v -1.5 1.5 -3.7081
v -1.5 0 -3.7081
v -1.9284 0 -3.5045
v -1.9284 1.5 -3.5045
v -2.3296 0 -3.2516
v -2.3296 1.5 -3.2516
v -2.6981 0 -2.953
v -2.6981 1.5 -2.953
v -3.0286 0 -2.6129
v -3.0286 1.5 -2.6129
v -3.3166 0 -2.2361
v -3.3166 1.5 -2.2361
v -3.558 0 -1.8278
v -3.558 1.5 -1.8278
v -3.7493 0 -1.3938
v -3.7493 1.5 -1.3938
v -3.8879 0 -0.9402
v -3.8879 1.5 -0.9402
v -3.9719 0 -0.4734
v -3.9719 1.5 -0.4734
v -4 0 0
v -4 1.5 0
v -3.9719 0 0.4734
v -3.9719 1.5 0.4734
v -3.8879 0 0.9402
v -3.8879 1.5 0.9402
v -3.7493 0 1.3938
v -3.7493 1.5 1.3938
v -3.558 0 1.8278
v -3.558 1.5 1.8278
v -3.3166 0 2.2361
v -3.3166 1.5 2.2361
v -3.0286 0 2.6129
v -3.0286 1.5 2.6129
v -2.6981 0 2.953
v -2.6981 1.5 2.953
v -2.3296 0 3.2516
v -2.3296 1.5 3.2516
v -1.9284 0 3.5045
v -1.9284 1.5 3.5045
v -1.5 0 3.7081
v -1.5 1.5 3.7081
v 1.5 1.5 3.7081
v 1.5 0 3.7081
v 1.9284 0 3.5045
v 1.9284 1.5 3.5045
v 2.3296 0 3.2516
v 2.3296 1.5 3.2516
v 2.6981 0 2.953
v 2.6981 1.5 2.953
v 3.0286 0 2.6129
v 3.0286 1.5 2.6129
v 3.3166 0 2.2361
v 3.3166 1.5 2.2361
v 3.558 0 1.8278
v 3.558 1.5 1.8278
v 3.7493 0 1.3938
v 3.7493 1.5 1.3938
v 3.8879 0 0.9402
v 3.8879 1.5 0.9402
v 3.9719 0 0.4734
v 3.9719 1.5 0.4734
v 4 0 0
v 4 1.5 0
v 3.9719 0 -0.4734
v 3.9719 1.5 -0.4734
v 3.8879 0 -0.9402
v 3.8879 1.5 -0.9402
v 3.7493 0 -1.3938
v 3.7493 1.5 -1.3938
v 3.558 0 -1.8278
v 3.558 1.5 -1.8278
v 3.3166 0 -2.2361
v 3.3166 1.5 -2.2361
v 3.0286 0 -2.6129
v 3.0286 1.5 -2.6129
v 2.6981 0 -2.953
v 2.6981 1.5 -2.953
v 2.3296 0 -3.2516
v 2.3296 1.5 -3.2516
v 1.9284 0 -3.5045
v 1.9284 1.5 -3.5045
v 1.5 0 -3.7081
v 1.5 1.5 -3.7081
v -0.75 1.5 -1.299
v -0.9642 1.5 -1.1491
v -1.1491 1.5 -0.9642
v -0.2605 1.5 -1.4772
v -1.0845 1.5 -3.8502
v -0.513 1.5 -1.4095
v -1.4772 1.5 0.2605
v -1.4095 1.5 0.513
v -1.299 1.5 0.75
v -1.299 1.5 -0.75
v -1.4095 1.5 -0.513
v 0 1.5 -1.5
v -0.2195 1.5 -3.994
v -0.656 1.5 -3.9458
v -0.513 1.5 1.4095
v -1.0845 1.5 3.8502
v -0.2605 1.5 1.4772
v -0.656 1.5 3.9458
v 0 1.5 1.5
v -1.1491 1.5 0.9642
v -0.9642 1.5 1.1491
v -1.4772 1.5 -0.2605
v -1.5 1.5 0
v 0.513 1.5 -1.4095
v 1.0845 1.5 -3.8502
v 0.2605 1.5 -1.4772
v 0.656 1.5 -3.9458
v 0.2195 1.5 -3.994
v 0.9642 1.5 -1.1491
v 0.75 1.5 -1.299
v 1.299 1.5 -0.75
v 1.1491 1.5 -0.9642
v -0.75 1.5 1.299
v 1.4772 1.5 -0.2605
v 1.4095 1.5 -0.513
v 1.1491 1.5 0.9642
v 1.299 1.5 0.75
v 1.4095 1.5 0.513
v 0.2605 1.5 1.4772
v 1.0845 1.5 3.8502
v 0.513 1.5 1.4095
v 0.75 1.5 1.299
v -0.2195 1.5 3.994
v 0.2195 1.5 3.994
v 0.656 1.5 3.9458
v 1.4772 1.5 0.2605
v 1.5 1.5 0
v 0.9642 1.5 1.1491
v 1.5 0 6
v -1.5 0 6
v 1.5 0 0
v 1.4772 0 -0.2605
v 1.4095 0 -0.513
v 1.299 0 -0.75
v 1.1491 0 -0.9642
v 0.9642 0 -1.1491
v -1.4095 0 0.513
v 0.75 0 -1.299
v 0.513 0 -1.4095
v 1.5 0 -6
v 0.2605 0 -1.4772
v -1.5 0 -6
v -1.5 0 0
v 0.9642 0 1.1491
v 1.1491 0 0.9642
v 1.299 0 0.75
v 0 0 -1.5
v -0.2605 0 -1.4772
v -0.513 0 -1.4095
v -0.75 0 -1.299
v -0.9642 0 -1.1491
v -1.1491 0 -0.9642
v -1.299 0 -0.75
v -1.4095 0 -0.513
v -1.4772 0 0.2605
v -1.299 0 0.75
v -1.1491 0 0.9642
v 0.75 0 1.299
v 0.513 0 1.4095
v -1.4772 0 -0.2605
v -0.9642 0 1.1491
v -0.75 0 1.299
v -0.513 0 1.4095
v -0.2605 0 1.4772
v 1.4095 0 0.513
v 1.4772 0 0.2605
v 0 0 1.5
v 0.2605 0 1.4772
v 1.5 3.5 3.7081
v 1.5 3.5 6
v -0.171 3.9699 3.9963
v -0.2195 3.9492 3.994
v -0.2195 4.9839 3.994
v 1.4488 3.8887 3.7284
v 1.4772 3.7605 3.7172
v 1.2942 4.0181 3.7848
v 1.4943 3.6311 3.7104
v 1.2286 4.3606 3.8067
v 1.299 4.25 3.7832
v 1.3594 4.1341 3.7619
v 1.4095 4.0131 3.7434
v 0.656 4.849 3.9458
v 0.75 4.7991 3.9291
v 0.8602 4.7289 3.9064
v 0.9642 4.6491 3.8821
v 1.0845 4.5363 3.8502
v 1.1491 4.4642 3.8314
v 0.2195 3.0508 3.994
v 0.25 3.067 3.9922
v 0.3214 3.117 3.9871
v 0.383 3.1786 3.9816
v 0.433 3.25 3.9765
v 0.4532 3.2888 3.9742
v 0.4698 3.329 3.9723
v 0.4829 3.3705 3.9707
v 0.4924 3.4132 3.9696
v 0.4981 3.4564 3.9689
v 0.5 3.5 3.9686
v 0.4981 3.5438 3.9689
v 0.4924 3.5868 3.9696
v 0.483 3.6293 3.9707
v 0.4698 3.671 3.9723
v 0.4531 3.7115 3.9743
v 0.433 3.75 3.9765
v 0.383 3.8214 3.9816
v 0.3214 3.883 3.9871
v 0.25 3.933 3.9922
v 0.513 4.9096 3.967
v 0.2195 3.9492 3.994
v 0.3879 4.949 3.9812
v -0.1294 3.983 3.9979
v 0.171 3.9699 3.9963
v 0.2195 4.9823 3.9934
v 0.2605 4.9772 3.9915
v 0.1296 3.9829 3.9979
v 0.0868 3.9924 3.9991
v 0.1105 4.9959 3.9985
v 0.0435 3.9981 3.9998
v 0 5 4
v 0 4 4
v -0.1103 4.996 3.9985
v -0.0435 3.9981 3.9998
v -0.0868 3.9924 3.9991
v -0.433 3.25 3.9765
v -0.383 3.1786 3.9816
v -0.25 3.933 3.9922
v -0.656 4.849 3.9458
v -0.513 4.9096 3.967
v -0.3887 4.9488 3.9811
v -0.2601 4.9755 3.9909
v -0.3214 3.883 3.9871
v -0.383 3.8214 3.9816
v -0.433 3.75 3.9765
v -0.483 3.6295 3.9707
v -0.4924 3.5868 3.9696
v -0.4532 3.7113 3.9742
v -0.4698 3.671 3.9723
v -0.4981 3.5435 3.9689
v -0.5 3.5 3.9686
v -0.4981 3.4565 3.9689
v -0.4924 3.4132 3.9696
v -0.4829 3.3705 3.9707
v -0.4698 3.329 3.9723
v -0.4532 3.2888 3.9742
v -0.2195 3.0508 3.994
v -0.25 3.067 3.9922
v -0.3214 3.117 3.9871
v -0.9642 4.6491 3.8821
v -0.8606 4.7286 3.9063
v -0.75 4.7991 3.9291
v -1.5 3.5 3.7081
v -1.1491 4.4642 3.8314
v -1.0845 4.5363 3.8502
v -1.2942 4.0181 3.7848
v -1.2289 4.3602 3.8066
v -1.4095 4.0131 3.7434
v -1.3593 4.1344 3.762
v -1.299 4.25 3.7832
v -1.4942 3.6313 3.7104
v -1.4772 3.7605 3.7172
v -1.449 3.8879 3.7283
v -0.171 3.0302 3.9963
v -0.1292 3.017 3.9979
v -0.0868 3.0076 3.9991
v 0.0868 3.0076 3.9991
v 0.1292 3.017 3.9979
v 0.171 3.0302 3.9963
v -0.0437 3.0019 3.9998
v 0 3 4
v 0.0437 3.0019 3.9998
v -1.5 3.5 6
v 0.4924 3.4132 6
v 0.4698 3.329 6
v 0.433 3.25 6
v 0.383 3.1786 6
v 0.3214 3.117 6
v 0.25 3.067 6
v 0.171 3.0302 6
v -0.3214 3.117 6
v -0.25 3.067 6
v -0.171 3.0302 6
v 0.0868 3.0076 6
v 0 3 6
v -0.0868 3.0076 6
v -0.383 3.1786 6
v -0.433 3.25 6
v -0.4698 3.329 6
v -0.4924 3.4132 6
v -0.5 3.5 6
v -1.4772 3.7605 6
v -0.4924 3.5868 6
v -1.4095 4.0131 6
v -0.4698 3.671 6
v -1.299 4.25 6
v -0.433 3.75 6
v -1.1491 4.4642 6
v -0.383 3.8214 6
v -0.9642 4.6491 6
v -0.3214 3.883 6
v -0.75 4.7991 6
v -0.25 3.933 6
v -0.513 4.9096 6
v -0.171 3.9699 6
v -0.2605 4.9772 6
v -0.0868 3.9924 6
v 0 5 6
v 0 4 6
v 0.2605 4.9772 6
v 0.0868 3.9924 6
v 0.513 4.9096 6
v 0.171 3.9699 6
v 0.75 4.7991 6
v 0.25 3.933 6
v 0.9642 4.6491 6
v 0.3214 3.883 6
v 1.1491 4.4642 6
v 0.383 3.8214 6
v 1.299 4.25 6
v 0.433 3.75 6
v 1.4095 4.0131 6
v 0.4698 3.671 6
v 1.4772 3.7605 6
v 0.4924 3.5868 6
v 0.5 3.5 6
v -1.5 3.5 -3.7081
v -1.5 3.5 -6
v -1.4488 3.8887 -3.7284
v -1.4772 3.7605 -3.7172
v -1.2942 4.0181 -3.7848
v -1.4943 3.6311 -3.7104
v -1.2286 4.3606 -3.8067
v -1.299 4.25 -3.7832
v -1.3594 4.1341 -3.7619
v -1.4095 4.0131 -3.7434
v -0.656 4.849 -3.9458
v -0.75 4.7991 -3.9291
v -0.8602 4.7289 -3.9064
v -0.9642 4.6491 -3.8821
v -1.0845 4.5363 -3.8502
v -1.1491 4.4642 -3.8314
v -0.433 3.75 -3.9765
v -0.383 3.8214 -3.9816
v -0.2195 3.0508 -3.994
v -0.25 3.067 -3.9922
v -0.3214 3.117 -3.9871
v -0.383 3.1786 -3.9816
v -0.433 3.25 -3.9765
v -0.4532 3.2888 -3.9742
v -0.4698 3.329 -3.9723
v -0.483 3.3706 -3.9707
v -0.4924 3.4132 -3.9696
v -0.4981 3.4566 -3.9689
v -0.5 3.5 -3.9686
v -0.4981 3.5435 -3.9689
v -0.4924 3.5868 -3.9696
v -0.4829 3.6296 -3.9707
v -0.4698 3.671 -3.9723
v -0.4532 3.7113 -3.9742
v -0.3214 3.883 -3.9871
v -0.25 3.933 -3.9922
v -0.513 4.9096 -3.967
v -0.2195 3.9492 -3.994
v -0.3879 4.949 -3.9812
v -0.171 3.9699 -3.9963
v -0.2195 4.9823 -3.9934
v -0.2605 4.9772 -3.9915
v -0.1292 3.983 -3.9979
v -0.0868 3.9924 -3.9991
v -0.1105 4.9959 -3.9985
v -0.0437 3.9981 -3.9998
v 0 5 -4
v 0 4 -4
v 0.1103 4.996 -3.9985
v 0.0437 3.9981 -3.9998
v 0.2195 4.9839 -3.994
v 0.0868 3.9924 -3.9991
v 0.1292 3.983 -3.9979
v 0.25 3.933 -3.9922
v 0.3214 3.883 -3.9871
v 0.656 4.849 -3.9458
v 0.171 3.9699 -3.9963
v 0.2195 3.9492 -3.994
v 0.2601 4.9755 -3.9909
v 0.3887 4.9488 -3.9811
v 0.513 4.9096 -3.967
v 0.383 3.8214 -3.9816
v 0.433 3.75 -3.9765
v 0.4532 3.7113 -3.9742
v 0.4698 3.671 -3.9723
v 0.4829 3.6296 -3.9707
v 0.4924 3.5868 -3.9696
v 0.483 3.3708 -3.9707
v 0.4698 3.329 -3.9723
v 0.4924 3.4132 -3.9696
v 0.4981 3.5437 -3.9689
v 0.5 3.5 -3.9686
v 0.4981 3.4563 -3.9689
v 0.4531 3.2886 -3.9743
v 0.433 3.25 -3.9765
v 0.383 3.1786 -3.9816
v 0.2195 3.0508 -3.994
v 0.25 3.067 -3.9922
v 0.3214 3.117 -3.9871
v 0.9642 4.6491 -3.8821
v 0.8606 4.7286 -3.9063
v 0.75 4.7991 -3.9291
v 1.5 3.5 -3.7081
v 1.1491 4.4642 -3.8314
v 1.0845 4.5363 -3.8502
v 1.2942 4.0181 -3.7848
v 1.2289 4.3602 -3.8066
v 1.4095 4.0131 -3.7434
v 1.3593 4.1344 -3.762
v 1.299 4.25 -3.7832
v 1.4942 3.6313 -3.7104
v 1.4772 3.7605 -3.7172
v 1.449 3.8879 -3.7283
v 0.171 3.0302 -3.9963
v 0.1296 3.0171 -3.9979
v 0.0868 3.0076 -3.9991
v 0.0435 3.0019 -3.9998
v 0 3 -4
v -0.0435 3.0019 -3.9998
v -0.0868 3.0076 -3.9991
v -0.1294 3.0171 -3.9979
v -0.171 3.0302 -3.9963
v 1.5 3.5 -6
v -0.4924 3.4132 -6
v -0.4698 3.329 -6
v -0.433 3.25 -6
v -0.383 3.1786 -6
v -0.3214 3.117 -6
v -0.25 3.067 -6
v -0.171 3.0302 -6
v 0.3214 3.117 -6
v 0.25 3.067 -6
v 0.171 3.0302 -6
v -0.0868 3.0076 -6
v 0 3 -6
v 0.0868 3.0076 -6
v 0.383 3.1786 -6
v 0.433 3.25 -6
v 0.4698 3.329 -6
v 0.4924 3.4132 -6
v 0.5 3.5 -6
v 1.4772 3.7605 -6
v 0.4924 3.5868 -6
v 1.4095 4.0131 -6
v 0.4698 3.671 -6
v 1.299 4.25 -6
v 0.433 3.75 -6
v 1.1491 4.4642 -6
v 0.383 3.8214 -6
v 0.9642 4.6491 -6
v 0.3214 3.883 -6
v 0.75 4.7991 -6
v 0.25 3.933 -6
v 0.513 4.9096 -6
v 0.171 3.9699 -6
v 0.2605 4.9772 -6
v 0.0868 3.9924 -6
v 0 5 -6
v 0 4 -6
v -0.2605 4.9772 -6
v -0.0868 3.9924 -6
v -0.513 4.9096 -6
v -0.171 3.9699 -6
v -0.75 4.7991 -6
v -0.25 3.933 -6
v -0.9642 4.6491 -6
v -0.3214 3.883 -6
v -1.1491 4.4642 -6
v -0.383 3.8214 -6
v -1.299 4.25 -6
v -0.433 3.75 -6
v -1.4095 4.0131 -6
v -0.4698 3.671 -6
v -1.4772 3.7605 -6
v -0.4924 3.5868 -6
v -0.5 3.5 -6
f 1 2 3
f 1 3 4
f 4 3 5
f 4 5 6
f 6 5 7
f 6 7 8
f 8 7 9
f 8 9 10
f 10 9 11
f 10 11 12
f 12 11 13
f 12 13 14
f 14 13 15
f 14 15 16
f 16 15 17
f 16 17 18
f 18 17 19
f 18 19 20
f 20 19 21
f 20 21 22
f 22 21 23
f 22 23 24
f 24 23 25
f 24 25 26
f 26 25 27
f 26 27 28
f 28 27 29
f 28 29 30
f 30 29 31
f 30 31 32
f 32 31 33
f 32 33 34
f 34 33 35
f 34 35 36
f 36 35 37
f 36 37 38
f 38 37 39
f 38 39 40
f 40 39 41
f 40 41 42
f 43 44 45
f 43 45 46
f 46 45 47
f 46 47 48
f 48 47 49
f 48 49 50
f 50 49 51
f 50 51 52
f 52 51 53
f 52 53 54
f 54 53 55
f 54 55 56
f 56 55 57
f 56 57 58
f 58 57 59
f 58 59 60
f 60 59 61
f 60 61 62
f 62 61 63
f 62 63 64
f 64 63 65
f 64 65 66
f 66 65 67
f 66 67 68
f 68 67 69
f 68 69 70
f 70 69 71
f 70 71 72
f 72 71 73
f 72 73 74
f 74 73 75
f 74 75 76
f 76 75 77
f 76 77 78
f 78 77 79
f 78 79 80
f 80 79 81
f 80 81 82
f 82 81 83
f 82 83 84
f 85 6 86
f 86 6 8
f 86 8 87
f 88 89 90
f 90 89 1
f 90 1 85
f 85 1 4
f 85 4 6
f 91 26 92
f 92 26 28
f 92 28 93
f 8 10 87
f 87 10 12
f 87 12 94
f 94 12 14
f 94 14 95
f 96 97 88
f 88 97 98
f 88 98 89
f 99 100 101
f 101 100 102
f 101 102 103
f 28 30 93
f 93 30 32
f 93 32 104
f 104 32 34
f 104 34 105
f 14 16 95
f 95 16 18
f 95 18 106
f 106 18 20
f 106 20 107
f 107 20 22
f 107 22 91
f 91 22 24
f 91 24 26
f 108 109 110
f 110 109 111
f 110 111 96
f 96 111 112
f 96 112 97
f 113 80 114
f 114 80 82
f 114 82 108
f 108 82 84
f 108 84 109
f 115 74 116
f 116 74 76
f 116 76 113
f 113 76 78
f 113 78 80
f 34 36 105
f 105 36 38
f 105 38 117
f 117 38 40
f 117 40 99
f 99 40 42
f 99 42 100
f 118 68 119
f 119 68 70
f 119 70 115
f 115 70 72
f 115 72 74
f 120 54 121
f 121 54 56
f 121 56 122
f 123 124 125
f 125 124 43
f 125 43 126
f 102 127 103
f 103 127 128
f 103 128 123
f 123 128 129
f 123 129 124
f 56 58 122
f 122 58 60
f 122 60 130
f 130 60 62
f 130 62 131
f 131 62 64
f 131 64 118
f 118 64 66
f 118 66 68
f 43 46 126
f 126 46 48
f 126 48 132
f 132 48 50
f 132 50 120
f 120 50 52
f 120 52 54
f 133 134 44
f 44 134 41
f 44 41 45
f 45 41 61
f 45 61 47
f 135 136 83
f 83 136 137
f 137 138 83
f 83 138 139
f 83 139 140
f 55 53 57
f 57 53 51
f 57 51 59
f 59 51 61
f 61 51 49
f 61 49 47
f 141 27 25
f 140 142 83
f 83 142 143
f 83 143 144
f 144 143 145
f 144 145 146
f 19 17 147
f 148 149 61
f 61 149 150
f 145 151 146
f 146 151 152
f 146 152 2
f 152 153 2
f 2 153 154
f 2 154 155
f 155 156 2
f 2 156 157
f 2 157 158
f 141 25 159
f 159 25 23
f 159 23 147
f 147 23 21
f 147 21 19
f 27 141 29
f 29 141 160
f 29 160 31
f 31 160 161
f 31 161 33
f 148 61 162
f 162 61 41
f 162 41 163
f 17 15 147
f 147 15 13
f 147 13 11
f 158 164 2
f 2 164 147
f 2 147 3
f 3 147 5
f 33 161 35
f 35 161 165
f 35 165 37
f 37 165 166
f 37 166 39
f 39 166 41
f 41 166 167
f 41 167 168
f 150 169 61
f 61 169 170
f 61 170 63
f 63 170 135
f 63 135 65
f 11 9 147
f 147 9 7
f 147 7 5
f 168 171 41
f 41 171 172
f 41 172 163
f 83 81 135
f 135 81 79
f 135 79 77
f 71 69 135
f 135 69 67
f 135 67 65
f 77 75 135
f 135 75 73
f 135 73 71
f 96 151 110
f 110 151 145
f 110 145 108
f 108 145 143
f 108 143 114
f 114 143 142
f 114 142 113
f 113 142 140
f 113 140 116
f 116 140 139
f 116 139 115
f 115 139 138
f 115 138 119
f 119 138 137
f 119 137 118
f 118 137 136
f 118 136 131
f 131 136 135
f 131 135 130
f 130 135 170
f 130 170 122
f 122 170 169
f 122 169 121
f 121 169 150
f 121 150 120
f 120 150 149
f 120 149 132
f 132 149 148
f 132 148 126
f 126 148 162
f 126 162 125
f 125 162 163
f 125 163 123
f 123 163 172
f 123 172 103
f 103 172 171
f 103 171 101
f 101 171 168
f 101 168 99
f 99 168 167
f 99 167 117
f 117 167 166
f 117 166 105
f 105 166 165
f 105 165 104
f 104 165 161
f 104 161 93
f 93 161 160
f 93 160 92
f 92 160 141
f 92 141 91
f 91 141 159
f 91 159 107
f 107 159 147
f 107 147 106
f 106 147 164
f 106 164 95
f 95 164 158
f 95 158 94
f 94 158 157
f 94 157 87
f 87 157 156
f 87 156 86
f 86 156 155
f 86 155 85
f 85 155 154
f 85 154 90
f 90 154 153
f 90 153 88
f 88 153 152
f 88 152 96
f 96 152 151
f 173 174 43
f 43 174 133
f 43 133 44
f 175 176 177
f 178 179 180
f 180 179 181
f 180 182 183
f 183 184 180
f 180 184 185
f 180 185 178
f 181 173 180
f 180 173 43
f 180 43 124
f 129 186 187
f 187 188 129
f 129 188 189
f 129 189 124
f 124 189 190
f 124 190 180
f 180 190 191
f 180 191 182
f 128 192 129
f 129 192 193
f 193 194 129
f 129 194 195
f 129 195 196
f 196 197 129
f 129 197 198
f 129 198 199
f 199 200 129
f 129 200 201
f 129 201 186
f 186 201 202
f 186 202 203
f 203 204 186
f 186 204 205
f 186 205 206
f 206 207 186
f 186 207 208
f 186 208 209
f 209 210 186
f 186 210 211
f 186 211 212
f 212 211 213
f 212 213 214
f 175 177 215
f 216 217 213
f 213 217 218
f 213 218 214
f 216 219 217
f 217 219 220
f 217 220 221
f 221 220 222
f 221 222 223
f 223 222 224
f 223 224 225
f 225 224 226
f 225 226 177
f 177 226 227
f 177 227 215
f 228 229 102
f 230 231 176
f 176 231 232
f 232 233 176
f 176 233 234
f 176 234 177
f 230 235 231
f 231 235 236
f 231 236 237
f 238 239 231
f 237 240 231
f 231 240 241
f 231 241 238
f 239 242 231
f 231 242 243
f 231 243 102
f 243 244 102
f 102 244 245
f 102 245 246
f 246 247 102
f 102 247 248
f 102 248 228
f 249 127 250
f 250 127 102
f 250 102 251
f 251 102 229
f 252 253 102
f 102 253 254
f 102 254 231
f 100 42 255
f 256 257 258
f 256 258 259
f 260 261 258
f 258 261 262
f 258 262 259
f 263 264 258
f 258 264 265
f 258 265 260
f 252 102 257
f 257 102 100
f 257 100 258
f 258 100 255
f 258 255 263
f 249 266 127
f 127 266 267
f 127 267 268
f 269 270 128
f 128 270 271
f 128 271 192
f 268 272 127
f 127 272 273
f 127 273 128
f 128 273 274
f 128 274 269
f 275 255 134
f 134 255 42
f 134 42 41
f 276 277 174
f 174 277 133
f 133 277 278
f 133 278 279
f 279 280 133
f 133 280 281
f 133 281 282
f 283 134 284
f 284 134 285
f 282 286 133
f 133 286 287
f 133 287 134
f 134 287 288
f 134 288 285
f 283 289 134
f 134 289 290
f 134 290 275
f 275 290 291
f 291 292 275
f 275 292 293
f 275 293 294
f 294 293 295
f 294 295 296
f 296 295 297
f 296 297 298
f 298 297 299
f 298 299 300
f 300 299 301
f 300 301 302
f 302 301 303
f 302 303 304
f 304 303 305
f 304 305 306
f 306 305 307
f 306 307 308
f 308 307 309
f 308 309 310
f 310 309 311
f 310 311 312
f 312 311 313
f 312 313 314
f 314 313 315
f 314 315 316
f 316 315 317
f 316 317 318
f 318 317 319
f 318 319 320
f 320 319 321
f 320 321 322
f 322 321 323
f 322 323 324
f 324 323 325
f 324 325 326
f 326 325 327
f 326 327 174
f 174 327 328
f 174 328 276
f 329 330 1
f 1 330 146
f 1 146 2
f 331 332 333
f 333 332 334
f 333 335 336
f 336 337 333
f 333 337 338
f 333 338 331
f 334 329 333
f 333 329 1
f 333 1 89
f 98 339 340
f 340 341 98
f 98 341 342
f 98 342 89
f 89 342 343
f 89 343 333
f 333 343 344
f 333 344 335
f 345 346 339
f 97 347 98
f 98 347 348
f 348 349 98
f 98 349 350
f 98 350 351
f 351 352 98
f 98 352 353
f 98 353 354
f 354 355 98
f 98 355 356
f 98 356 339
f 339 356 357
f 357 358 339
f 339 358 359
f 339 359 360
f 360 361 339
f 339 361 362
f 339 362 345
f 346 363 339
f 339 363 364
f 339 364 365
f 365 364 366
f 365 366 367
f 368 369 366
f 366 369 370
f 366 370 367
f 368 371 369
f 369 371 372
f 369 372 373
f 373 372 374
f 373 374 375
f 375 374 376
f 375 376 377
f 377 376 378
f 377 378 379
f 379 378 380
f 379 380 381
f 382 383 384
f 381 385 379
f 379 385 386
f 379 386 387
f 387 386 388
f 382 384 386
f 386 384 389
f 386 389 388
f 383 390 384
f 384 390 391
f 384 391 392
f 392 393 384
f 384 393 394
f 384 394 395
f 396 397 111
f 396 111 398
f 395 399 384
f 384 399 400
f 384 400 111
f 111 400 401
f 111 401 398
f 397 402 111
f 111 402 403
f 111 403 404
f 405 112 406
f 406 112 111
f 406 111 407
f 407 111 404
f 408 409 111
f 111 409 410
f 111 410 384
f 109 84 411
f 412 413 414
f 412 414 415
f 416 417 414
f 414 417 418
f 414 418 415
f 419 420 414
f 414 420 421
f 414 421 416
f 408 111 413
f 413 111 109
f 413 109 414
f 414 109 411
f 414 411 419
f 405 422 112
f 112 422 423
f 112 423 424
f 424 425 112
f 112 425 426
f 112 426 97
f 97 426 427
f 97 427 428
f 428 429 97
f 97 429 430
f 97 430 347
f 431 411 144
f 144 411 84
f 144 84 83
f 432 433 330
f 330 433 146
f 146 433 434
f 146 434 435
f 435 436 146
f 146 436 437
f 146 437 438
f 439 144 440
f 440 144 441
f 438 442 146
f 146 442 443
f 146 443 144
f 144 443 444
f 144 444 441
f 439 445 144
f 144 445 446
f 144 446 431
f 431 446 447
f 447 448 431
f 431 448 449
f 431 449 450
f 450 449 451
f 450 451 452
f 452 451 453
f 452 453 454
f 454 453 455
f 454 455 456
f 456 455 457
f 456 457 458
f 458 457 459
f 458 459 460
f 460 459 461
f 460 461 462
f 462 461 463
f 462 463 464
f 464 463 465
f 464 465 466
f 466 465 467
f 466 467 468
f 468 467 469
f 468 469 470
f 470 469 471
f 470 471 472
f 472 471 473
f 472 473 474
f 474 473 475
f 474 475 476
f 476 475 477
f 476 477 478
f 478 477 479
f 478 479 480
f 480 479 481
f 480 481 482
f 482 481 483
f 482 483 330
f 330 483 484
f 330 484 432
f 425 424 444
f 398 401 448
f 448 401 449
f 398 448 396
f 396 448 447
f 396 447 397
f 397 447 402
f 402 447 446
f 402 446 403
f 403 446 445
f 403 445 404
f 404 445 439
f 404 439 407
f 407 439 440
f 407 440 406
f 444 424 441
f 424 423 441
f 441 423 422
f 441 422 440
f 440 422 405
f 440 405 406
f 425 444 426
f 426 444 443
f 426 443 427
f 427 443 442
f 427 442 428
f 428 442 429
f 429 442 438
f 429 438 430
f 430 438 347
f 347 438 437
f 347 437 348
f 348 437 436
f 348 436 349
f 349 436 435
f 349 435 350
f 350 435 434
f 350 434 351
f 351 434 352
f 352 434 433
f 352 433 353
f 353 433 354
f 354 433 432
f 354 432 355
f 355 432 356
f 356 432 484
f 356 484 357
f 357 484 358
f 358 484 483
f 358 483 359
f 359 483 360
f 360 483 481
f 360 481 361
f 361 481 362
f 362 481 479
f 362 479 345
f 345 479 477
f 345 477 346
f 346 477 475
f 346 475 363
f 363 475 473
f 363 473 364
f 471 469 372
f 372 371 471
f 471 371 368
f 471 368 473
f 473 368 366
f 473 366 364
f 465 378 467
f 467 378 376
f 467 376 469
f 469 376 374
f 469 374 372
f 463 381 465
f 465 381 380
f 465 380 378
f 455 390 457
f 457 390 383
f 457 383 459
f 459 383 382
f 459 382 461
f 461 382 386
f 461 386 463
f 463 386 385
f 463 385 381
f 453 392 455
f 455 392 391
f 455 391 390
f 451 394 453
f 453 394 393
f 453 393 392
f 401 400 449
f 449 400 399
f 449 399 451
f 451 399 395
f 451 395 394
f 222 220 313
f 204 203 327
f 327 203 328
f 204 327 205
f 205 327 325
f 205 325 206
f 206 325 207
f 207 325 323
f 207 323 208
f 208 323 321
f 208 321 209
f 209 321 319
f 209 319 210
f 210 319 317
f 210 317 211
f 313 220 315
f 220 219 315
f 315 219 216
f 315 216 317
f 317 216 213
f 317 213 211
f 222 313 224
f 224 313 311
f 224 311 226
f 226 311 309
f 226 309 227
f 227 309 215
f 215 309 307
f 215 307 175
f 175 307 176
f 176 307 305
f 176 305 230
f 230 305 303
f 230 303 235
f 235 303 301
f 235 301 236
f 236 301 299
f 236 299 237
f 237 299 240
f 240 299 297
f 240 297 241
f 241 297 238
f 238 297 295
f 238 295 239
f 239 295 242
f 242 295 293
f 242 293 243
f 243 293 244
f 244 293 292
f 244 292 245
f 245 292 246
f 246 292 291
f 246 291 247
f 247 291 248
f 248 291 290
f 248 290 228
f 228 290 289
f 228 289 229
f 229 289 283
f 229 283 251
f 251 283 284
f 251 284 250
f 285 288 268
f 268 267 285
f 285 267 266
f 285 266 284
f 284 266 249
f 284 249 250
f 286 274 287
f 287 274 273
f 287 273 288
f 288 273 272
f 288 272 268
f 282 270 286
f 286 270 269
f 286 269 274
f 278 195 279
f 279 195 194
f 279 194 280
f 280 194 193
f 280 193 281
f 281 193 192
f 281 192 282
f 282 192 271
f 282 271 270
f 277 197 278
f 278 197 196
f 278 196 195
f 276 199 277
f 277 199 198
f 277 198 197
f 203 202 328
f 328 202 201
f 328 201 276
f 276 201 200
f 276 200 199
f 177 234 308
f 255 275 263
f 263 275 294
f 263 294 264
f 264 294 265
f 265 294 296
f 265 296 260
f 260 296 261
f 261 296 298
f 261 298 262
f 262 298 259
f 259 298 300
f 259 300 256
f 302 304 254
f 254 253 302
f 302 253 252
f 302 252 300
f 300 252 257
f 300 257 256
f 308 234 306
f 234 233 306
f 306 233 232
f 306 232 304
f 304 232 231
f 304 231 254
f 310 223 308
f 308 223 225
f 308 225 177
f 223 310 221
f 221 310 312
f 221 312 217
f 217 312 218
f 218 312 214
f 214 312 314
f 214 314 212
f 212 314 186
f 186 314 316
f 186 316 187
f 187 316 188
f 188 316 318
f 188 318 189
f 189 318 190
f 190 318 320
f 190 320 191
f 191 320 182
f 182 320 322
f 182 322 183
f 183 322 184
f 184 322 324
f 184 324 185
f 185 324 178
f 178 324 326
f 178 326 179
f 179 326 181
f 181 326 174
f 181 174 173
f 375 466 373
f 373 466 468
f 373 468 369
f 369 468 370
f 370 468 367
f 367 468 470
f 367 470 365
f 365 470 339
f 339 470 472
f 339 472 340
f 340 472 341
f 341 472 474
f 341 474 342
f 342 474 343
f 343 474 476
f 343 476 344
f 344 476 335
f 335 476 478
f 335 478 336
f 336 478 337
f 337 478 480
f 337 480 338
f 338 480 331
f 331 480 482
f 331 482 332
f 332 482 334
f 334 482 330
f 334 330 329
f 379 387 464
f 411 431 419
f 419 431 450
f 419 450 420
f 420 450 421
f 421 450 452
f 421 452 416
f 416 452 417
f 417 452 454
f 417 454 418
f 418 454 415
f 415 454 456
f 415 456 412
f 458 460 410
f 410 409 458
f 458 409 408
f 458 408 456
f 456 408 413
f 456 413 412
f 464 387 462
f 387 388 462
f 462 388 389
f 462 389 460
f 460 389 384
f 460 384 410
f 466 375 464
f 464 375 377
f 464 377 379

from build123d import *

# Parameters (mm, degrees)
SKETCH1_R           = 4
SKETCH1_R_2         = 1.5
BOSS_EXTRUDE1_DEPTH = 1.5
BOSS_EXTRUDE2_DEPTH = 5
SKETCH4_R           = 0.5
CUT_EXTRUDE1_DEPTH  = 14.601470509
FILLET1_R           = 1.5


with BuildPart() as part:
    # Sketch1 → Boss-Extrude1 (new body)
    with BuildSketch(Plane(origin=(0, 0, 0), x_dir=(1, 0, 0), z_dir=(0, 1, 0))):
        with Locations(Location((0, 0, 0), (0, 0, 270))):
            Circle(SKETCH1_R)
        with Locations(Location((0, 0, 0), (0, 0, 270))):
            Circle(SKETCH1_R_2, mode=Mode.SUBTRACT)
    extrude(amount=BOSS_EXTRUDE1_DEPTH)

    # Sketch3 → Boss-Extrude2 (add)
    with BuildSketch(Plane(origin=(0, 0, 0), x_dir=(1, 0, 0), z_dir=(0, 1, 0))):
        with BuildLine():
            Line((-1.5, -3.708099244), (-1.5, -6))
            Line((-1.5, -6), (1.5, -6))
            Line((1.5, -6), (1.5, -3.708099244))
            ThreePointArc((1.5, -3.708099244), (0, -4), (-1.5, -3.708099244))
        make_face()
        with BuildLine():
            Line((-1.5, 6), (1.5, 6))
            Line((1.5, 6), (1.5, 3.708099244))
            ThreePointArc((1.5, 3.708099244), (0, 4), (-1.5, 3.708099244))
            Line((-1.5, 3.708099244), (-1.5, 6))
        make_face()
    extrude(amount=BOSS_EXTRUDE2_DEPTH)

    # Sketch4 → Cut-Extrude1 (cut, through all)
    with BuildSketch(Plane.XY.offset(6)):
        with Locations((0, 3.5)):
            Circle(SKETCH4_R)
    extrude(amount=-CUT_EXTRUDE1_DEPTH, mode=Mode.SUBTRACT)

    # Fillet1
    fillet1_edges = [part.edges().sort_by_distance(p)[0] for p in [
        (1.5, 5, 4.854049622),
        (-1.5, 5, 4.854049622),
        (1.5, 5, -4.854049622),
        (-1.5, 5, -4.854049622),
    ]]
    fillet(fillet1_edges, radius=FILLET1_R - 0.0001)  # a hair under: the kernel refuses the full size


solid = part.part
